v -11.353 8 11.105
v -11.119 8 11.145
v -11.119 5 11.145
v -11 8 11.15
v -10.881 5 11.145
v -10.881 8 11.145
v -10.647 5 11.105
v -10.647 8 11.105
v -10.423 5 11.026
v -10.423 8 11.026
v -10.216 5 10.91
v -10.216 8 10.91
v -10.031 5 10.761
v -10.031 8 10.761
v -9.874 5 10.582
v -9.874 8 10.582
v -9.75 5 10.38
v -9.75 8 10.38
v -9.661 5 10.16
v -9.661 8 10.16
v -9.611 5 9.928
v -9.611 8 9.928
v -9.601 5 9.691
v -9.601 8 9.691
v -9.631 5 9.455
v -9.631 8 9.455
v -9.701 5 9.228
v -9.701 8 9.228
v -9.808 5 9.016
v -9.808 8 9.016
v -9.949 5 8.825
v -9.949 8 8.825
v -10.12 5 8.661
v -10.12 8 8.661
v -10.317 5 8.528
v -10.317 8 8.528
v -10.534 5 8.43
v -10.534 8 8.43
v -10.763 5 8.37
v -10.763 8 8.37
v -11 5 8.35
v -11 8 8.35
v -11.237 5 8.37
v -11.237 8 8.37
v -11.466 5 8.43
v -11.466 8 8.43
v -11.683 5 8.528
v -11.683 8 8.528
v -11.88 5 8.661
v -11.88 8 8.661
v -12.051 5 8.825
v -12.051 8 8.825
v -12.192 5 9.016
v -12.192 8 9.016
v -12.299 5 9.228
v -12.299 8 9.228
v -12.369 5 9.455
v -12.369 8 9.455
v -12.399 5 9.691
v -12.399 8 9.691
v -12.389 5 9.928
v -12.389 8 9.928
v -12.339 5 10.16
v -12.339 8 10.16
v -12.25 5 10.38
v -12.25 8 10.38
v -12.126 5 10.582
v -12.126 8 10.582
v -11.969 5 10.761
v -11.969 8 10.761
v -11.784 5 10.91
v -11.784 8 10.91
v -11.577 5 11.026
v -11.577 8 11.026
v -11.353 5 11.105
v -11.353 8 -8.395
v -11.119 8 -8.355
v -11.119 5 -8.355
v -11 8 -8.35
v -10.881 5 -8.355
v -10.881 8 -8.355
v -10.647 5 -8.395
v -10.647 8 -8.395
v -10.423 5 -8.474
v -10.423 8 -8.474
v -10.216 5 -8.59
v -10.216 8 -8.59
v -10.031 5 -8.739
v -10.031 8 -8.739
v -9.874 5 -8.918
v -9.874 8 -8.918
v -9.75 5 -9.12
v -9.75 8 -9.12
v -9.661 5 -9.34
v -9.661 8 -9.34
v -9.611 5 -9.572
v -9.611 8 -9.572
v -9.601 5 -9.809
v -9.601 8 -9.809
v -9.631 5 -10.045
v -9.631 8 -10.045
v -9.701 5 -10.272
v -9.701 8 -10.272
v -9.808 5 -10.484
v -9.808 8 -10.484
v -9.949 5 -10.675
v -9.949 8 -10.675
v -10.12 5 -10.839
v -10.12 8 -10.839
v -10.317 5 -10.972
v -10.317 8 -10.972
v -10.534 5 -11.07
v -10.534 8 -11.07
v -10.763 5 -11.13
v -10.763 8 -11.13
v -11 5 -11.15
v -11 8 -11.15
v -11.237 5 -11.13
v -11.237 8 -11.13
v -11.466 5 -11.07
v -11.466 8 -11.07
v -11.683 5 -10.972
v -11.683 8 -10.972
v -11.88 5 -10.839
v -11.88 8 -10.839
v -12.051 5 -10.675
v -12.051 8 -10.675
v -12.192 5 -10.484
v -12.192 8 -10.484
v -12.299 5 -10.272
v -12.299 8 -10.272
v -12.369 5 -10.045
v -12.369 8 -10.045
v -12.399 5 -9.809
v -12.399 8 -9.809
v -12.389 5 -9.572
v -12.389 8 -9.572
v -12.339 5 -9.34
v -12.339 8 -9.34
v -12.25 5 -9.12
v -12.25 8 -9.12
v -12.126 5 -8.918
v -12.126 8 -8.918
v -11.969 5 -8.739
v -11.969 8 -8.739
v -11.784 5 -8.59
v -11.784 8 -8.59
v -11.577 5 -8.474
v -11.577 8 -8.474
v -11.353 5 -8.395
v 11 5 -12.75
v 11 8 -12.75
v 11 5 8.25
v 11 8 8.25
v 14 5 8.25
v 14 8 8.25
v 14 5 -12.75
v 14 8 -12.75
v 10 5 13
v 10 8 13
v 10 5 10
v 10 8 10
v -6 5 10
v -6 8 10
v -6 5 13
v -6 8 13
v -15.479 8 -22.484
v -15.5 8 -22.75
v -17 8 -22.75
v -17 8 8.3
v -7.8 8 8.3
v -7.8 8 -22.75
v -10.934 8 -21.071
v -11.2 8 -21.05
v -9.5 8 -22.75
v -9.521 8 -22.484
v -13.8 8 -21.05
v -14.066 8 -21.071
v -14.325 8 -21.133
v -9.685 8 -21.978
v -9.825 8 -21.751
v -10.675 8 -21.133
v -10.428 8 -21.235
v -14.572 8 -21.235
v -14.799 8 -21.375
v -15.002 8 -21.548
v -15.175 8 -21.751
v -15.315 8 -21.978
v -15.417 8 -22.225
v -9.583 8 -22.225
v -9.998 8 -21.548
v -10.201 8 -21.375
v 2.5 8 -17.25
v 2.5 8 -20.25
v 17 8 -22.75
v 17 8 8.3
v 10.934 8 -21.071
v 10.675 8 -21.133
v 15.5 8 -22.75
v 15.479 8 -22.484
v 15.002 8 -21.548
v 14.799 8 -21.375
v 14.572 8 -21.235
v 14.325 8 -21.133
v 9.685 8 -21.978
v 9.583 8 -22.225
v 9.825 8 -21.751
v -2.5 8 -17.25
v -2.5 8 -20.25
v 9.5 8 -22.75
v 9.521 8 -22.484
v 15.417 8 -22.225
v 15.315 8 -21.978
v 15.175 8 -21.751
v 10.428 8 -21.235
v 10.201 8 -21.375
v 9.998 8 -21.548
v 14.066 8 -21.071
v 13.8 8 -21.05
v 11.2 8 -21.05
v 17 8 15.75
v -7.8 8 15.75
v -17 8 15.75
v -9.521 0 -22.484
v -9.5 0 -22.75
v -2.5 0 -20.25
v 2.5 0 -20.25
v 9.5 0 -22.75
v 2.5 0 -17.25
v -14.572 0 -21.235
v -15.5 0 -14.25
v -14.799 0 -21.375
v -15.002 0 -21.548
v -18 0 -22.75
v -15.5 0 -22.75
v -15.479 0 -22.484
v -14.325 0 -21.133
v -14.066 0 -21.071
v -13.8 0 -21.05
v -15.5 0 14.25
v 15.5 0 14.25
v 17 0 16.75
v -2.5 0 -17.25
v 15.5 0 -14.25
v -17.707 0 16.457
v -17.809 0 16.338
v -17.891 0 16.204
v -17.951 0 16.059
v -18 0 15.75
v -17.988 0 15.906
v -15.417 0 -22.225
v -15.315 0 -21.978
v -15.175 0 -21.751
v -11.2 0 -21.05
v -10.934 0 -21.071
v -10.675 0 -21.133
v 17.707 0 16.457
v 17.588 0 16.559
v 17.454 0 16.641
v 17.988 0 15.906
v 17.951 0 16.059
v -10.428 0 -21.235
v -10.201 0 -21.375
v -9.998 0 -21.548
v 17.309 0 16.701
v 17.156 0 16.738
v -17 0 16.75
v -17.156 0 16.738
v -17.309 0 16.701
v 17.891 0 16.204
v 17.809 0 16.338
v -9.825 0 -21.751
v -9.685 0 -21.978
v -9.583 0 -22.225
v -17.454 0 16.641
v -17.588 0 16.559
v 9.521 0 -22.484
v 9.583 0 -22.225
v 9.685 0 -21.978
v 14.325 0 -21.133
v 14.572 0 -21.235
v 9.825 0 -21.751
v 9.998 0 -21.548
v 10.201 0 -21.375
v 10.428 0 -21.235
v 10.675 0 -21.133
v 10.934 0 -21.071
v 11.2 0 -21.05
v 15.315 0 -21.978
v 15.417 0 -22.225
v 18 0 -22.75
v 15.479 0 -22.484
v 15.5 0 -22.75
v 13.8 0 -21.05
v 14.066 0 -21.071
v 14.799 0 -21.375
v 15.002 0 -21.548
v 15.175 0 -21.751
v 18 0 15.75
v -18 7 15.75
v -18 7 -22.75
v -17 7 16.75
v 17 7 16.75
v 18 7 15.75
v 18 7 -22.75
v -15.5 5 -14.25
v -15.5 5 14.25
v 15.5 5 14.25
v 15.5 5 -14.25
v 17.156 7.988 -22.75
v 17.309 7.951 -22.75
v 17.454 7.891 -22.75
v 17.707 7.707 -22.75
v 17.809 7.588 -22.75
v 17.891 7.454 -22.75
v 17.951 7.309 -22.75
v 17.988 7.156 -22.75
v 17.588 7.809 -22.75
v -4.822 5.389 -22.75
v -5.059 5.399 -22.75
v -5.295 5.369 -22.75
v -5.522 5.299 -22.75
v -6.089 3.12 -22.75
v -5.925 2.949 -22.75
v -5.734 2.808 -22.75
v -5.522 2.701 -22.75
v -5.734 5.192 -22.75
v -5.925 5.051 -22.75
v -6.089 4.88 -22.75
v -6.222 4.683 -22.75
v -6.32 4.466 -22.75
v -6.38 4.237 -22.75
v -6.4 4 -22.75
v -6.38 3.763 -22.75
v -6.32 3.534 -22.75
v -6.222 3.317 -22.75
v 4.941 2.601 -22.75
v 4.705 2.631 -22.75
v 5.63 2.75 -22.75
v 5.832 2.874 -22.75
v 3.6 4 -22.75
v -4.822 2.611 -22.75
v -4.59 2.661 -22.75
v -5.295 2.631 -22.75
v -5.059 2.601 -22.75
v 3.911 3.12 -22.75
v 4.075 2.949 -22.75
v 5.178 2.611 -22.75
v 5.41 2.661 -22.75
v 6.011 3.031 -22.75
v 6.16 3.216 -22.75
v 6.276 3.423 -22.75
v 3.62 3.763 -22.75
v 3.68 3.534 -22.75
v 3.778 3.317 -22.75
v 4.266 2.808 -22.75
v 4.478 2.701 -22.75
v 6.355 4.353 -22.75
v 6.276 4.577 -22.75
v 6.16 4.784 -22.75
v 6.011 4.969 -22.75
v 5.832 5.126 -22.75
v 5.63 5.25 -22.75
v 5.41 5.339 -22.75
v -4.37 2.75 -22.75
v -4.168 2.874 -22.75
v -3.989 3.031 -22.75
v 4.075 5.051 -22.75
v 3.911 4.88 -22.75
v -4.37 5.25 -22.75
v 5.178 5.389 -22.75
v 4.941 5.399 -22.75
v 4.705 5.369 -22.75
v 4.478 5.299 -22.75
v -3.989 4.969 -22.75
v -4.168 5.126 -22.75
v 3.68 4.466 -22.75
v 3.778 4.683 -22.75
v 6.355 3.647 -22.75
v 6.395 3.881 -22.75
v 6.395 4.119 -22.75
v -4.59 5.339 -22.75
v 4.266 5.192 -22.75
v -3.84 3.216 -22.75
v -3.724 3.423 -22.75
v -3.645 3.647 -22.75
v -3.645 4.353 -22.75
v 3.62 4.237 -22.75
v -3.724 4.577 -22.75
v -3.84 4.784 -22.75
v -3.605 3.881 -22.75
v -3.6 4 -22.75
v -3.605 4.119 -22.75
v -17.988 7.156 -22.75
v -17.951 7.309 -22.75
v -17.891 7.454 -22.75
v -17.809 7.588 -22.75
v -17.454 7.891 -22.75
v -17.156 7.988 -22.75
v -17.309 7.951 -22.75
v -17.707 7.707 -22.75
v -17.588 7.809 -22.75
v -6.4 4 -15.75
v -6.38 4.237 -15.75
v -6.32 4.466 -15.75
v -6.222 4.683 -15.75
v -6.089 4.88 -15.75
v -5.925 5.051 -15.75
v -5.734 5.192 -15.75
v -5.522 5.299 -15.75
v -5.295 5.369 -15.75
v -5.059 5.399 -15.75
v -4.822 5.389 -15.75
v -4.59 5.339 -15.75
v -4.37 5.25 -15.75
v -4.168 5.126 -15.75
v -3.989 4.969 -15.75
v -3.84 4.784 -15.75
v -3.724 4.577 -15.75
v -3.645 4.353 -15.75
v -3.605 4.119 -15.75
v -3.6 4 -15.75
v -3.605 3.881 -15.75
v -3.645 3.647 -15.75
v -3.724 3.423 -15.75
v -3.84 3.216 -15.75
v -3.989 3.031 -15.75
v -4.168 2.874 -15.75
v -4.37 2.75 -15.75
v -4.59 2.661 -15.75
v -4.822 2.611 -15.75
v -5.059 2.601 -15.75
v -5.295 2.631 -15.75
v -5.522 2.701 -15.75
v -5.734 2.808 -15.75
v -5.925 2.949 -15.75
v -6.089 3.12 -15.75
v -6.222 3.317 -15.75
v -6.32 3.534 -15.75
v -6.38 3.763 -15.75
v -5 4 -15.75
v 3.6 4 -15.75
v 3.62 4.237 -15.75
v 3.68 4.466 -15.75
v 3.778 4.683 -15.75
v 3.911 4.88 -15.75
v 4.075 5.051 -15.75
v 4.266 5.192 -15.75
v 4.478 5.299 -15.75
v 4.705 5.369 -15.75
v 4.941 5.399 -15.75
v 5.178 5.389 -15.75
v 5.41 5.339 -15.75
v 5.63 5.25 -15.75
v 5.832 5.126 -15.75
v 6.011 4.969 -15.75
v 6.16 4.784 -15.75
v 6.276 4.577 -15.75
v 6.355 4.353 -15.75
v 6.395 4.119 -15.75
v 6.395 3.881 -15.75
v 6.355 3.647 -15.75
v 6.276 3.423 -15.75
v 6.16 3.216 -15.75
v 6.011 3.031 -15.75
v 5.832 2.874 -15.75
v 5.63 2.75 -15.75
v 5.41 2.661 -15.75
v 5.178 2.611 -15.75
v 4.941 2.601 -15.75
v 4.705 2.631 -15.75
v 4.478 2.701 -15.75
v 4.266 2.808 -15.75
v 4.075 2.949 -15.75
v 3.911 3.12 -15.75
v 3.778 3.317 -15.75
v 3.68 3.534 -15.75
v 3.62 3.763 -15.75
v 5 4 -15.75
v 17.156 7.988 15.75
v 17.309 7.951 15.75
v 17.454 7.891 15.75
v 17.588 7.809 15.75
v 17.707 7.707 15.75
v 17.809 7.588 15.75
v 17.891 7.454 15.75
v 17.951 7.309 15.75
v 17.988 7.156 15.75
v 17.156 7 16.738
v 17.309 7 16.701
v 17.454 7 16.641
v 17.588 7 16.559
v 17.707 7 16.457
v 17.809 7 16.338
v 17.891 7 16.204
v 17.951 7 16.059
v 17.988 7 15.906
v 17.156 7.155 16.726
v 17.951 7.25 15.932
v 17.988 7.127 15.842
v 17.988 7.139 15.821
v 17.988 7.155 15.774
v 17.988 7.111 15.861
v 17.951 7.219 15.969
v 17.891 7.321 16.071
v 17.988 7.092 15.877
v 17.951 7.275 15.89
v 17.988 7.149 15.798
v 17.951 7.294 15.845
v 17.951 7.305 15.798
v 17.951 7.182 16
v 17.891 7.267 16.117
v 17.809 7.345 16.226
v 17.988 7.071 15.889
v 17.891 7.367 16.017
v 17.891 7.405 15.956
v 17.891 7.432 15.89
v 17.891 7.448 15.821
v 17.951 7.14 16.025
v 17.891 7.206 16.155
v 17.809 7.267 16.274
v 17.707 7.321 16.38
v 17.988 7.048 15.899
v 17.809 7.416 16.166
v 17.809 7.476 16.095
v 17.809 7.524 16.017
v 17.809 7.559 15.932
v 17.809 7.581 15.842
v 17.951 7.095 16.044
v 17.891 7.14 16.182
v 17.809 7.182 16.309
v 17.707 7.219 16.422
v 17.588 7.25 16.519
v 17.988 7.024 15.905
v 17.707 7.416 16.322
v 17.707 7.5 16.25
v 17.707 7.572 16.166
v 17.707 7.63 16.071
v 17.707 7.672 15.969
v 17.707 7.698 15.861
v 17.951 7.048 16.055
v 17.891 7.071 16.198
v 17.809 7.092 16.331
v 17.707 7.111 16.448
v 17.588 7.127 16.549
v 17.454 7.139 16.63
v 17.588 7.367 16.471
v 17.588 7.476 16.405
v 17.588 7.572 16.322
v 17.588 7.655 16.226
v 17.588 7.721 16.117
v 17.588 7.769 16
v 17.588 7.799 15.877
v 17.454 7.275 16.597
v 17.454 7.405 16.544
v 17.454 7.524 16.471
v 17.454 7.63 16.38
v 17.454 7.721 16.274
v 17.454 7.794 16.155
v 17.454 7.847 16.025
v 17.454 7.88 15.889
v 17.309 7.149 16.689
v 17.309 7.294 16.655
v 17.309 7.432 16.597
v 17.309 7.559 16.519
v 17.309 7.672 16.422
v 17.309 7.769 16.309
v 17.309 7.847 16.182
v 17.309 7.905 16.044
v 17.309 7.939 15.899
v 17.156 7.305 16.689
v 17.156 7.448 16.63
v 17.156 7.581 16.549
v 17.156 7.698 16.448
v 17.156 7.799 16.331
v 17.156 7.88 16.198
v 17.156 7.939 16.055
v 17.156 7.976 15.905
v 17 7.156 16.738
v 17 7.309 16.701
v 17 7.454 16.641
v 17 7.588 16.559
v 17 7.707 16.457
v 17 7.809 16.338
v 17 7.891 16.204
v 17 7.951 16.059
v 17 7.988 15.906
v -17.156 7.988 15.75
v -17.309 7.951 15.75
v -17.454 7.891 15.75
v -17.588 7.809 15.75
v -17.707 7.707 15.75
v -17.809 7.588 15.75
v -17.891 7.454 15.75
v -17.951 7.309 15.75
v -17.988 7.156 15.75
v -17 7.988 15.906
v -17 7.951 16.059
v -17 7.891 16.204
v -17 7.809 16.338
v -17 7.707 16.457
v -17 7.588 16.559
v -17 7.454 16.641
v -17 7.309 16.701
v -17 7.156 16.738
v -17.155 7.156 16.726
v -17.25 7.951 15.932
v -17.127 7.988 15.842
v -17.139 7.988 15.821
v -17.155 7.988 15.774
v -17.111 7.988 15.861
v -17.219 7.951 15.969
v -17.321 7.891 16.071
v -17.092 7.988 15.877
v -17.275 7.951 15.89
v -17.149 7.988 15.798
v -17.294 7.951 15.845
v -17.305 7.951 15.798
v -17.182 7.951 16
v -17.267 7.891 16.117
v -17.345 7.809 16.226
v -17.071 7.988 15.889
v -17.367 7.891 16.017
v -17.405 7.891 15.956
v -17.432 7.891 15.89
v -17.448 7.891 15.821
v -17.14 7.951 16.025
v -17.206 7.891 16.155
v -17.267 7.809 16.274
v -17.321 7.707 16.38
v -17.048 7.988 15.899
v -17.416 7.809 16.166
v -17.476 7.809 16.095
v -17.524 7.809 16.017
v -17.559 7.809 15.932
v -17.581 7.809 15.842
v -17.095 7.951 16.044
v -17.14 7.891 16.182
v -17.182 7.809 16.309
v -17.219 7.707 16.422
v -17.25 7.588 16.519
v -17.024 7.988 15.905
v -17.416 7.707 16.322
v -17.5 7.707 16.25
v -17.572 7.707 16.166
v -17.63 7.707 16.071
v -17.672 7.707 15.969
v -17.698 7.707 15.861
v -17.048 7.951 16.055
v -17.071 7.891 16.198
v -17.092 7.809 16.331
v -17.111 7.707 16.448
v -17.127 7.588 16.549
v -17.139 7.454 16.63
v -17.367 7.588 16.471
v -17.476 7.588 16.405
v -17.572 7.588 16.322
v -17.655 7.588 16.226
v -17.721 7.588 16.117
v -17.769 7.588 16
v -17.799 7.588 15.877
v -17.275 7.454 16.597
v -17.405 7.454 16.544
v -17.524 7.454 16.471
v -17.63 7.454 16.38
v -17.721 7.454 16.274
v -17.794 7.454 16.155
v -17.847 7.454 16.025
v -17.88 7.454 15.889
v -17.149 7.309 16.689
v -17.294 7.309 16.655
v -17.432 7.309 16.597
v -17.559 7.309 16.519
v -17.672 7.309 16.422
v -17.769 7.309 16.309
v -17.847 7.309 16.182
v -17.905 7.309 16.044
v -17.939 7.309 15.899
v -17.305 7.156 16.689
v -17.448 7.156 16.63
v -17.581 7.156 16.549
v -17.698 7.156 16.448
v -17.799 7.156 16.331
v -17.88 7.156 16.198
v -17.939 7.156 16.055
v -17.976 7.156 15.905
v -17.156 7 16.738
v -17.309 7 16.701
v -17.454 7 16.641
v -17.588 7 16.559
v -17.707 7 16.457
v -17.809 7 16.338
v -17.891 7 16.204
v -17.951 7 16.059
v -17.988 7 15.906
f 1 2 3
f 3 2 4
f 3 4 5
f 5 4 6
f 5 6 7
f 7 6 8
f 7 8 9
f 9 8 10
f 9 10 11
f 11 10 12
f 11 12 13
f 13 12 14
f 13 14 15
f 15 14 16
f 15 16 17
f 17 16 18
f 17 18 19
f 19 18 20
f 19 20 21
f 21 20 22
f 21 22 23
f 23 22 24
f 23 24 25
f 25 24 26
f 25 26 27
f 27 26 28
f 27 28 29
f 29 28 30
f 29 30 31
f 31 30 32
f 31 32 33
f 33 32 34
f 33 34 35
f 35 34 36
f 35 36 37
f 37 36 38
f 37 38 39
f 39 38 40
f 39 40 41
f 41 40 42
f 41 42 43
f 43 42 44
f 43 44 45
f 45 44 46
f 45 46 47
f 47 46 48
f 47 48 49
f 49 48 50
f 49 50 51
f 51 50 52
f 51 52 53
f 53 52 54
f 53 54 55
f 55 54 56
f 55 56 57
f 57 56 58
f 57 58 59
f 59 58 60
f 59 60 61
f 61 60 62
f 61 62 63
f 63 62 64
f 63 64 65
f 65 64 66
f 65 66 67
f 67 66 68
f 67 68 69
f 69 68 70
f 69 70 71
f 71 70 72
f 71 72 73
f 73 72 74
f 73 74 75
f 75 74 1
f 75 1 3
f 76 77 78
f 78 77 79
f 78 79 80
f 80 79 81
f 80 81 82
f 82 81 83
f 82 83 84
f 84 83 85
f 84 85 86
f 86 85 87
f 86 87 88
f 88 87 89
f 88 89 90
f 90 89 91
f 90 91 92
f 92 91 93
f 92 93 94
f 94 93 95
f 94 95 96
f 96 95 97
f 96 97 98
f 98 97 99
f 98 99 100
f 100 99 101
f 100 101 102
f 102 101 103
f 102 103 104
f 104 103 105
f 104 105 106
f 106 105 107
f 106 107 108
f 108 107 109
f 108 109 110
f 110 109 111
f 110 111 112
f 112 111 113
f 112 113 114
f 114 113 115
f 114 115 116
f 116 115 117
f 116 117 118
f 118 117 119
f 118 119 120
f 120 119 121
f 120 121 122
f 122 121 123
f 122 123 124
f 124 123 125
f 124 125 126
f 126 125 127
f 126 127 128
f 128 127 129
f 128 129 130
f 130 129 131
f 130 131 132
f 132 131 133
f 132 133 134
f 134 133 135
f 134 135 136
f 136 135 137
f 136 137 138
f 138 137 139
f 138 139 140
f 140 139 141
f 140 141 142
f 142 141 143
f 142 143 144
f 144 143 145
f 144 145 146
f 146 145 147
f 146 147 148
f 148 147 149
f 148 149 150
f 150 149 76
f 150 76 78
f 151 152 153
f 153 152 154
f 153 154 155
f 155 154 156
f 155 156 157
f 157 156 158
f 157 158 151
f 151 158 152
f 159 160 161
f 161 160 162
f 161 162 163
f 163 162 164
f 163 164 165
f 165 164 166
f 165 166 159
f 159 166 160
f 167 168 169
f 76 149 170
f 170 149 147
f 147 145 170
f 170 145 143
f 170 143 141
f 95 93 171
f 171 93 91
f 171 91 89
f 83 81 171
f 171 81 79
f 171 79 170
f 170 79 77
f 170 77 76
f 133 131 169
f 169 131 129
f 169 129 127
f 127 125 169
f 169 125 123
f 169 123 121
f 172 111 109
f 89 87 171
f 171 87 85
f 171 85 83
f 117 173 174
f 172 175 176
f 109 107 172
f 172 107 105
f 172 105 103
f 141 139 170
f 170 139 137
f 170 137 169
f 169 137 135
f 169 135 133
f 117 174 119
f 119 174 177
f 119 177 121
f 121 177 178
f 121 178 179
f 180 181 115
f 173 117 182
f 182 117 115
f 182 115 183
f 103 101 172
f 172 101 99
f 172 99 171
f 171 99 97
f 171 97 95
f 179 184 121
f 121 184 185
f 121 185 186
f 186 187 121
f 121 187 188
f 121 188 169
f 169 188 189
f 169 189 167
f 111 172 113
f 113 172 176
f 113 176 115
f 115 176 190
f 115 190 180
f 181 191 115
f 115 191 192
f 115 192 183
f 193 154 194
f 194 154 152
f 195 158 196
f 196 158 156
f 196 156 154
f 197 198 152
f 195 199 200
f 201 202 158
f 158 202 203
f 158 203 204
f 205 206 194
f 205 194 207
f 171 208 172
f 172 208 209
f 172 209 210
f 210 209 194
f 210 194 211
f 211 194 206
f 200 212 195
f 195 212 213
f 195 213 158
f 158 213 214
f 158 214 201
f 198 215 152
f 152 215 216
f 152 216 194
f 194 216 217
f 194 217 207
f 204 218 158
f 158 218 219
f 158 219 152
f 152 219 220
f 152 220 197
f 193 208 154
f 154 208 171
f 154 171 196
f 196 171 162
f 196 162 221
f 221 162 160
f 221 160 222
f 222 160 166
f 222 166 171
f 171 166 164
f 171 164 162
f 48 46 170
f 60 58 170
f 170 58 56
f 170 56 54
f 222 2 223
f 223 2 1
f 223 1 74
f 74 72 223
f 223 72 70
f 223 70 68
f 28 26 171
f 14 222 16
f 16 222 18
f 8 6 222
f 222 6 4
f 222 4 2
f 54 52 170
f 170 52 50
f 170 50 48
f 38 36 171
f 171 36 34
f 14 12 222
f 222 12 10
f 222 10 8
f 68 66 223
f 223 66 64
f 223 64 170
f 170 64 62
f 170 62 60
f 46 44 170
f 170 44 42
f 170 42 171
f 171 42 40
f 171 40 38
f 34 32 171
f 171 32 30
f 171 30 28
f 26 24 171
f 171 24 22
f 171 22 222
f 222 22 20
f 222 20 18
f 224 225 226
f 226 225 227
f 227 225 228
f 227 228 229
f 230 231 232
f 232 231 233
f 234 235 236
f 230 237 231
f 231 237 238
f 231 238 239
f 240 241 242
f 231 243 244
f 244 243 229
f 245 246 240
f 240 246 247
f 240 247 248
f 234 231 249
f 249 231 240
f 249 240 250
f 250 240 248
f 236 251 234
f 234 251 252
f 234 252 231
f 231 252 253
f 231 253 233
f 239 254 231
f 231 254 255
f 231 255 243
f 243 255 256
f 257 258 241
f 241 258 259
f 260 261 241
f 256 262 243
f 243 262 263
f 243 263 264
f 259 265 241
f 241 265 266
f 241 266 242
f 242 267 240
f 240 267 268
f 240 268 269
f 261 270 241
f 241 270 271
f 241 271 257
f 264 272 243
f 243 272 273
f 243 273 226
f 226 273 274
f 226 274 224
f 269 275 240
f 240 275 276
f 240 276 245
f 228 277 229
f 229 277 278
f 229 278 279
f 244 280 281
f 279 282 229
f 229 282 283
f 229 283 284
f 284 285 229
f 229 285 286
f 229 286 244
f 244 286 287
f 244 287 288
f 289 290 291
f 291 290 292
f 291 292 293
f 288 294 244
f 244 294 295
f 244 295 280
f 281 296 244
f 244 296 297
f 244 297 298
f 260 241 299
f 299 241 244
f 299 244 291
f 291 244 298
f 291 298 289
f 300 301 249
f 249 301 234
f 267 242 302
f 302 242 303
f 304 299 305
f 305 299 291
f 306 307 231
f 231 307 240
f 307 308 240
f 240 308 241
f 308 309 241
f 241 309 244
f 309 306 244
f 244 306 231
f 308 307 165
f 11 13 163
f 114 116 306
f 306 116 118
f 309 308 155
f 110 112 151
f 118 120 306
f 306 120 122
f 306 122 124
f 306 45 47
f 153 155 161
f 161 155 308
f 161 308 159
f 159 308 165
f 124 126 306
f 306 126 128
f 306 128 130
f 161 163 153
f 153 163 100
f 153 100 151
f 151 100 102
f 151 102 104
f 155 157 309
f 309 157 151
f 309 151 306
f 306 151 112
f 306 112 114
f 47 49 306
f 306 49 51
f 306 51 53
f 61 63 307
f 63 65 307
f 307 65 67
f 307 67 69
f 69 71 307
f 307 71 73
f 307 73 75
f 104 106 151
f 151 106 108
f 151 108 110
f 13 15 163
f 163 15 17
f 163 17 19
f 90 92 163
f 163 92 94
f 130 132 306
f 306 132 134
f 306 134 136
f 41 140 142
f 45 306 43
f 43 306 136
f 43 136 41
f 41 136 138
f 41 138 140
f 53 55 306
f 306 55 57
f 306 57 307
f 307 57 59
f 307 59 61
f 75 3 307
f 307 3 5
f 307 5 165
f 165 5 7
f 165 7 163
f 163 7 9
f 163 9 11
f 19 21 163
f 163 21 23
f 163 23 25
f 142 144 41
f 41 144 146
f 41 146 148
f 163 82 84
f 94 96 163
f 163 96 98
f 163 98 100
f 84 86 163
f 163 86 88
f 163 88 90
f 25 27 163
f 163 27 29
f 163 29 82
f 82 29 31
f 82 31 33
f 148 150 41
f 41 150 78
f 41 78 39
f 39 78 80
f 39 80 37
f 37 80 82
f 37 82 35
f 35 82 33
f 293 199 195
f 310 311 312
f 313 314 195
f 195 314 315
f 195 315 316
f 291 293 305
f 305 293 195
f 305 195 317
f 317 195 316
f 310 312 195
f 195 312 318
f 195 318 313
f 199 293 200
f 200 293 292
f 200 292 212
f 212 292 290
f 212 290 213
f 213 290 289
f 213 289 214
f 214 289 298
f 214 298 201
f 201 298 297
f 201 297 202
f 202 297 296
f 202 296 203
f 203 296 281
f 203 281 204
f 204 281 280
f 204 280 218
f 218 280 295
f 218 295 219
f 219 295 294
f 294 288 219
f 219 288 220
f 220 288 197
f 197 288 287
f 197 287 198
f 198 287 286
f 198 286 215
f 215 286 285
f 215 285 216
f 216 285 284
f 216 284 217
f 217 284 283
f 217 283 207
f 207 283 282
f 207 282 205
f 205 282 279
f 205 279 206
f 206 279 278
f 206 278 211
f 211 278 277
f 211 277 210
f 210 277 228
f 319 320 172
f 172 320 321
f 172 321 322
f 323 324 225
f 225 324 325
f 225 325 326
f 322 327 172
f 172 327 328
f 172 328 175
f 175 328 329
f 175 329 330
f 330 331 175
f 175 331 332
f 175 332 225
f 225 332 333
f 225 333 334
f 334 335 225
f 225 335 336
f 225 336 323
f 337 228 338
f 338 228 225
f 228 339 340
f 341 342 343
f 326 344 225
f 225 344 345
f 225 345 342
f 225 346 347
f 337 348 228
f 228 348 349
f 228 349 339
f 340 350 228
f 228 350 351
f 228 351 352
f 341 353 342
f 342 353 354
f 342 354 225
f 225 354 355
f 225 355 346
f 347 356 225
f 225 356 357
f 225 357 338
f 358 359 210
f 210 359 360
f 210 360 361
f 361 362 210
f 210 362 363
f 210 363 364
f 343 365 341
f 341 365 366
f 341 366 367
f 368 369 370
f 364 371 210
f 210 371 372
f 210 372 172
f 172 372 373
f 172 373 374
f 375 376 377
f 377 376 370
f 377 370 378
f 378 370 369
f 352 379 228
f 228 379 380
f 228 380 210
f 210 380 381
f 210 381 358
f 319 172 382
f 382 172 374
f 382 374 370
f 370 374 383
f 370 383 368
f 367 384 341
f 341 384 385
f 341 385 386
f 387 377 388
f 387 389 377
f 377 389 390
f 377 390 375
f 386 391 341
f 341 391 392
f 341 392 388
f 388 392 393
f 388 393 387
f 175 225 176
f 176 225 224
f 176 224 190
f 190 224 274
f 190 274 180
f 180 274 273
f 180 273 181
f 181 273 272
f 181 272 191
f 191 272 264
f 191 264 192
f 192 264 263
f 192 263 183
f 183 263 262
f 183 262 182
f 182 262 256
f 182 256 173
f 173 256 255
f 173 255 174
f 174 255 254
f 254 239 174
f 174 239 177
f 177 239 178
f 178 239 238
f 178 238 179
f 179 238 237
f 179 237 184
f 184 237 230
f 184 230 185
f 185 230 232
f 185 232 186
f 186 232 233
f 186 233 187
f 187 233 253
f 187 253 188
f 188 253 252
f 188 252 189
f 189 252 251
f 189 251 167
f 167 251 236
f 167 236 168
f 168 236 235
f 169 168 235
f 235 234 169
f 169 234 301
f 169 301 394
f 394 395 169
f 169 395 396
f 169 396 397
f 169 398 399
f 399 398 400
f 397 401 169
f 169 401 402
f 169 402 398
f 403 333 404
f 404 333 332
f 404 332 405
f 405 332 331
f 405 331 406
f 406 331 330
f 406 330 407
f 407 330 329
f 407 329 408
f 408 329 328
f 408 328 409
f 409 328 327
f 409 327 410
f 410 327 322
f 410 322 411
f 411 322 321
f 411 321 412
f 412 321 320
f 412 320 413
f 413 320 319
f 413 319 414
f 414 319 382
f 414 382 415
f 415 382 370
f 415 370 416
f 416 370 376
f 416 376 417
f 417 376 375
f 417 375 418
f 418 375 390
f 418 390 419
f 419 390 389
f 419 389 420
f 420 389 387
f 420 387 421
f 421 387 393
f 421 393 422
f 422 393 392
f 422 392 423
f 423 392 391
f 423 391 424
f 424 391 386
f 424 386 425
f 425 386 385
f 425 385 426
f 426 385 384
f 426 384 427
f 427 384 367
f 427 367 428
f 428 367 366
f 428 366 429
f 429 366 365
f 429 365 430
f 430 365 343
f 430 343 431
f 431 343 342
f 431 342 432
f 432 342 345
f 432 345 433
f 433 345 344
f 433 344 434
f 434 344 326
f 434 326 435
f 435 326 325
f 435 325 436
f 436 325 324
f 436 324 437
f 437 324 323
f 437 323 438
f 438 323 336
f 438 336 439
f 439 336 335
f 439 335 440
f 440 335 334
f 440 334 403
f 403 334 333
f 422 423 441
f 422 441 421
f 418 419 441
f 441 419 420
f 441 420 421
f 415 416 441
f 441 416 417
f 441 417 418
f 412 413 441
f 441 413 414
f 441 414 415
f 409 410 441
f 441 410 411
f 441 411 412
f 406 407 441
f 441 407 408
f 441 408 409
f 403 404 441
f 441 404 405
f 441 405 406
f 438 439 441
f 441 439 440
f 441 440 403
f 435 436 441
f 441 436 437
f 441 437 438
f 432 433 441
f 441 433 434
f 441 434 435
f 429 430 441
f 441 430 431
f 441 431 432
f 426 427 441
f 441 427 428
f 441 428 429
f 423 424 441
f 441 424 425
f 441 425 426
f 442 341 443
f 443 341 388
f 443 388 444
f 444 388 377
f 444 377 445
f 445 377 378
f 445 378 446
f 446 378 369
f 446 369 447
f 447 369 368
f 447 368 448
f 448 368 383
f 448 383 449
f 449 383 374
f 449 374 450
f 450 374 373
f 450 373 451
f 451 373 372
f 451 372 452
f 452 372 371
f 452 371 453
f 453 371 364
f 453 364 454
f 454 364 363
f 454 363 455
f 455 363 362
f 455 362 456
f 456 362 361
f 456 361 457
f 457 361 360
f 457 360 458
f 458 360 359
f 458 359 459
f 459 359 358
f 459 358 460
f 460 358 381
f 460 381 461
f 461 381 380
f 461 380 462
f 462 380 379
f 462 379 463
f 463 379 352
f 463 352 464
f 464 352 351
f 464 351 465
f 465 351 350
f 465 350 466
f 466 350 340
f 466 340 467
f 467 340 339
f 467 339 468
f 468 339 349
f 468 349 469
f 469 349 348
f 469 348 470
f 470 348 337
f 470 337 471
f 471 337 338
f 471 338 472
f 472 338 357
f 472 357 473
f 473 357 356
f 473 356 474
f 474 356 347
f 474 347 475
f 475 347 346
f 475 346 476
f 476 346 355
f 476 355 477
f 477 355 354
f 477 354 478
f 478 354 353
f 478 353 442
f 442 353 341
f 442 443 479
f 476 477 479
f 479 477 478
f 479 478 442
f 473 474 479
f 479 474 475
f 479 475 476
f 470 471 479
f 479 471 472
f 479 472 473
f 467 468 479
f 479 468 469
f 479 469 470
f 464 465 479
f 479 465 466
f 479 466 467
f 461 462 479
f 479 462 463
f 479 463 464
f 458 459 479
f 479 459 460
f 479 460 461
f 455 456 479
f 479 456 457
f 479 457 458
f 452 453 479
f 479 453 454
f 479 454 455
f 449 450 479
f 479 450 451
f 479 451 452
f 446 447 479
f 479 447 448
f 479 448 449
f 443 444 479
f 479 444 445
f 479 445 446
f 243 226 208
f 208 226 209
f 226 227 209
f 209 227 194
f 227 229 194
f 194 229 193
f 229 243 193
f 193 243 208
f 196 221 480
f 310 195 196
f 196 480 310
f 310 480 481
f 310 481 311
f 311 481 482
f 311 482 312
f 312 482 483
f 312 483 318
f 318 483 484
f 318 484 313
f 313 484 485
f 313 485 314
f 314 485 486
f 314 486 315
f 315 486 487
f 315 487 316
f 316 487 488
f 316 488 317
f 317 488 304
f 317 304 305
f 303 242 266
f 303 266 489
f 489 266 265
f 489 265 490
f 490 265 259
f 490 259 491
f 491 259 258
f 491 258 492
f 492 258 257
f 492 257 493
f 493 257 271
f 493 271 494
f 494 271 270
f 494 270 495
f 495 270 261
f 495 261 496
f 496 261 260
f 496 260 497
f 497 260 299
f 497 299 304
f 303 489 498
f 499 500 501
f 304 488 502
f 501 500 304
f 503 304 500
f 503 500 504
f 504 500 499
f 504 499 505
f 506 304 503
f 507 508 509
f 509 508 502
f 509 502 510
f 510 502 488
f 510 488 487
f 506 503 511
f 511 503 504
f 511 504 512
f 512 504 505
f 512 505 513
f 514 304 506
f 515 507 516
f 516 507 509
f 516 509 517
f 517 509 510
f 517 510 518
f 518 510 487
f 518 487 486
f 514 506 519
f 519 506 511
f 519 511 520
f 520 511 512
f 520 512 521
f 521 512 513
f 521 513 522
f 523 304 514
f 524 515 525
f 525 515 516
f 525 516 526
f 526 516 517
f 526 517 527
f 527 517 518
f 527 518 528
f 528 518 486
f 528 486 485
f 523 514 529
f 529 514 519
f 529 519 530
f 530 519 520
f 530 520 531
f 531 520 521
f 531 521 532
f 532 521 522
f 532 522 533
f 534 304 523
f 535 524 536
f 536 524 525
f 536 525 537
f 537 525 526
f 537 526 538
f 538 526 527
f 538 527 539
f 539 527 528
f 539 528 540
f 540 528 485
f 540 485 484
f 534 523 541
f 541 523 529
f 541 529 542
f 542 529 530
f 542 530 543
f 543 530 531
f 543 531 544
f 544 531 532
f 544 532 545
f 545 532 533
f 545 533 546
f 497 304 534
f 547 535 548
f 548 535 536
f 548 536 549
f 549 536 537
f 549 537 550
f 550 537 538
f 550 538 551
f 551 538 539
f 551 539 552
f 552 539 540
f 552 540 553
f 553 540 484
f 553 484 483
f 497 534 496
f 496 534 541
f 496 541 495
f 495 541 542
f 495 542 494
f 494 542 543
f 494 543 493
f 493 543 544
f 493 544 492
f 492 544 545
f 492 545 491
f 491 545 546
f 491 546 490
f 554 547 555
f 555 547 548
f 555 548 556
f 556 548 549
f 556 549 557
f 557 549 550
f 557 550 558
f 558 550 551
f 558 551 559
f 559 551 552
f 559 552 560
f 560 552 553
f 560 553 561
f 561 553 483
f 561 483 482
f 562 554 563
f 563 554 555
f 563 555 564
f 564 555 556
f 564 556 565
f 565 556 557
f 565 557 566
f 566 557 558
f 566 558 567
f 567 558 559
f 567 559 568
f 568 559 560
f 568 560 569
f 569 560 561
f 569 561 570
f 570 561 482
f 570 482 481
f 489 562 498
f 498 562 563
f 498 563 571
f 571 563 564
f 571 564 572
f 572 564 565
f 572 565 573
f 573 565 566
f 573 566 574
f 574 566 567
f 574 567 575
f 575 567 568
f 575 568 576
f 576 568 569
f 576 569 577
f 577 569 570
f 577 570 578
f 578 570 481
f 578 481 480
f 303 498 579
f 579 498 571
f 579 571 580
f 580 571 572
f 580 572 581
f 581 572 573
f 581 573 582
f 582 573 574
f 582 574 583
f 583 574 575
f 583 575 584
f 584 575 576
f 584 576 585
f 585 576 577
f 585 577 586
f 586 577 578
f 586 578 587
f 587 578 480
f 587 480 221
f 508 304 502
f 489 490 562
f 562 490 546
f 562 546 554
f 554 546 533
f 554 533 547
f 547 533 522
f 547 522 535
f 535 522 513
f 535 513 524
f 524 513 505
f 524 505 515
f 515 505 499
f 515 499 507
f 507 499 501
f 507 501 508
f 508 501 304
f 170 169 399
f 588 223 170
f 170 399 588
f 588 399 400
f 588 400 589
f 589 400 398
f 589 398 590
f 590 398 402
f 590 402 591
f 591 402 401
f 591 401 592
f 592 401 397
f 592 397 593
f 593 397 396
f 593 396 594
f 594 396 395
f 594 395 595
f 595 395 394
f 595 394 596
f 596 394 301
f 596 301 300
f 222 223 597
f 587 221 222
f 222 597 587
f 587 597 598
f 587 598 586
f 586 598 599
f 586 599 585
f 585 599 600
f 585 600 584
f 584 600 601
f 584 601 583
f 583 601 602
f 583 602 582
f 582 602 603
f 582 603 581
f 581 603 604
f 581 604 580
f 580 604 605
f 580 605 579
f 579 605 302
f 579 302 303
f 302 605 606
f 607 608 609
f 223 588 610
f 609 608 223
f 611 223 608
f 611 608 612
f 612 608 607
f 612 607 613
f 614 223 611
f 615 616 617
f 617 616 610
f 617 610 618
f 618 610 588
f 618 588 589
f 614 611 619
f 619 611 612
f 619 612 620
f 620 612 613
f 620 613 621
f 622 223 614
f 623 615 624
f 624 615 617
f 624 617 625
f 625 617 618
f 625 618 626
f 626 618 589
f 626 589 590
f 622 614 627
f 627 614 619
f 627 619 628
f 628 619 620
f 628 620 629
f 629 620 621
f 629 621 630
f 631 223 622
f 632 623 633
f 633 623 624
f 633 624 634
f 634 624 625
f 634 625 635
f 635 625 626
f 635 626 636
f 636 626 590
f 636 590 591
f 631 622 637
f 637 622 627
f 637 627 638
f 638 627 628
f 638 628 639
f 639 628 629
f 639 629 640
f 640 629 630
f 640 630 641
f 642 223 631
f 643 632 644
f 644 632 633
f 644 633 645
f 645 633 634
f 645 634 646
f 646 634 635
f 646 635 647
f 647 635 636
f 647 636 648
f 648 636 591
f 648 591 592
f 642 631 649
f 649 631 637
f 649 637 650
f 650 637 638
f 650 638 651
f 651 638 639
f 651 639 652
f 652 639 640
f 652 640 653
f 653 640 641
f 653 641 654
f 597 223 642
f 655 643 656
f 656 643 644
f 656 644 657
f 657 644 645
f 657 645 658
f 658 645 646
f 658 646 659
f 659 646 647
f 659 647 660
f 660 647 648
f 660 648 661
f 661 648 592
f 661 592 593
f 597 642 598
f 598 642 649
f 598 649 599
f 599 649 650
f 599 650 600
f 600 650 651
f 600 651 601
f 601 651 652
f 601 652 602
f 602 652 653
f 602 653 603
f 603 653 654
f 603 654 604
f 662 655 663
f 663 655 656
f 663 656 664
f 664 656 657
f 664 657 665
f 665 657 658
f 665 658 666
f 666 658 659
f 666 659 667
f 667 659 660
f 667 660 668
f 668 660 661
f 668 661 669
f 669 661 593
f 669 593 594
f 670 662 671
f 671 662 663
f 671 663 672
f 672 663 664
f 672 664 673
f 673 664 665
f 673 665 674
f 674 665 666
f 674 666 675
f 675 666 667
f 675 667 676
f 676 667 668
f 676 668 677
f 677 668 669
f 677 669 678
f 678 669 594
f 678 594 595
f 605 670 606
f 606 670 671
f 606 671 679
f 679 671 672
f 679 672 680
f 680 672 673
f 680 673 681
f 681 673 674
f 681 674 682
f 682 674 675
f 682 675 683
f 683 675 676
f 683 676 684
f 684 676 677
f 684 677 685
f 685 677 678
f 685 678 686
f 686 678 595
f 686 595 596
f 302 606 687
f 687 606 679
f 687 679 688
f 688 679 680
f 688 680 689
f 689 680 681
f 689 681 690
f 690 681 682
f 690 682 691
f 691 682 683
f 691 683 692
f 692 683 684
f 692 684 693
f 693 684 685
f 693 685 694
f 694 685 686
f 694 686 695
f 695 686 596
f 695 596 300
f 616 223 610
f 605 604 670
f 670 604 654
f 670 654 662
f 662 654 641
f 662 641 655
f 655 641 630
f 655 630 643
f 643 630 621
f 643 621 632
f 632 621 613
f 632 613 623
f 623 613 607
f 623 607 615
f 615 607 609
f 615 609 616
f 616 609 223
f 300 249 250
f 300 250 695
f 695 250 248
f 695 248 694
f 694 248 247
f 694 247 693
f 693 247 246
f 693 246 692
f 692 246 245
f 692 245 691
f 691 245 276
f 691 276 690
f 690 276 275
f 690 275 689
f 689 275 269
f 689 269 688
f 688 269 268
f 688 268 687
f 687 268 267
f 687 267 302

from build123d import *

# Parameters (mm, degrees)
SKETCH1_W                         = 36
SKETCH1_H                         = 33.5
SKETCH1_R                         = 1.4
SKETCH1_W_2                       = 3
SKETCH1_H_2                       = 21
SKETCH1_W_3                       = 16
SKETCH1_H_3                       = 3
BASE_DEPTH                        = 8
SKETCH3_W                         = 31
SKETCH3_H                         = 28.5
INTERIOR_CUTOUT_DEPTH             = 5
BASKET_MOUNTING_EDGE_DEPTH        = 8
SKETCH6_R                         = 1.4
BASKET_MOUNTING_SCREW_HOLES_DEPTH = 7
SKETCH7_W                         = 5
SKETCH7_H                         = 3
ZIP_TIE_HOLE_DEPTH                = 31.092565527
F_1MM_EDGE_FILLETS_R              = 1


with BuildPart() as part:
    # Sketch1 → Base (new body)
    with BuildSketch(Plane(origin=(0, 0, 0), x_dir=(1, 0, 0), z_dir=(0, 1, 0))):
        Rectangle(SKETCH1_W, SKETCH1_H)
        with Locations(Location((-11, -9.75, 0), (0, 0, 270))):
            Circle(SKETCH1_R, mode=Mode.SUBTRACT)
        with Locations(Location((-11, 9.75, 0), (0, 0, 270))):
            Circle(SKETCH1_R, mode=Mode.SUBTRACT)
        with Locations((12.5, 2.25)):
            Rectangle(SKETCH1_W_2, SKETCH1_H_2, mode=Mode.SUBTRACT)
        with Locations((2, -11.5)):
            Rectangle(SKETCH1_W_3, SKETCH1_H_3, mode=Mode.SUBTRACT)
    extrude(amount=BASE_DEPTH)

    # Sketch3 → Interior Cutout (cut)
    with BuildSketch(Plane.XZ):
        Rectangle(SKETCH3_W, SKETCH3_H)
    extrude(amount=-INTERIOR_CUTOUT_DEPTH, mode=Mode.SUBTRACT)

    # Sketch5 → Basket Mounting Edge (add)
    with BuildSketch(Plane(origin=(0, 0, 0), x_dir=(1, 0, 0), z_dir=(0, 1, 0))):
        with BuildLine():
            Line((-18, 16.75), (18, 16.75))
            Line((18, 16.75), (18, 22.75))
            Line((18, 22.75), (15.5, 22.75))
            ThreePointArc((15.5, 22.75), (15.002081528, 21.547918472), (13.8, 21.05))
            Line((13.8, 21.05), (11.2, 21.05))
            ThreePointArc((11.2, 21.05), (9.997918472, 21.547918472), (9.5, 22.75))
            Line((9.5, 22.75), (-9.5, 22.75))
            ThreePointArc((-9.5, 22.75), (-9.997918472, 21.547918472), (-11.2, 21.05))
            Line((-11.2, 21.05), (-13.8, 21.05))
            ThreePointArc((-13.8, 21.05), (-15.002081528, 21.547918472), (-15.5, 22.75))
            Line((-15.5, 22.75), (-18, 22.75))
            Line((-18, 22.75), (-18, 16.75))
        make_face()
    extrude(amount=BASKET_MOUNTING_EDGE_DEPTH)

    # Sketch6 → Basket Mounting Screw Holes (cut)
    with BuildSketch(Plane(origin=(0, 0, -22.75), x_dir=(-1, 0, 0), z_dir=(0, 0, -1))):
        with Locations((-5, 4)):
            Circle(SKETCH6_R)
        with Locations(Location((5, 4, 0), (0, 0, 180))):
            Circle(SKETCH6_R)
    extrude(amount=-BASKET_MOUNTING_SCREW_HOLES_DEPTH, mode=Mode.SUBTRACT)

    # Sketch7 → Zip Tie Hole (cut, through all)
    with BuildSketch(Plane(origin=(0, 8, 0), x_dir=(1, 0, 0), z_dir=(0, 1, 0))):
        with Locations((0, 18.75)):
            Rectangle(SKETCH7_W, SKETCH7_H)
    extrude(amount=-ZIP_TIE_HOLE_DEPTH, mode=Mode.SUBTRACT)

    # 1mm Edge Fillets
    f_1mm_edge_fillets_edges = [part.edges().sort_by_distance(p)[0] for p in [
        (18, 8, -3),
        (-18, 8, -3),
        (18, 4, 16.75),
        (-18, 4, 16.75),
        (0, 8, 16.75),
    ]]
    fillet(f_1mm_edge_fillets_edges, radius=F_1MM_EDGE_FILLETS_R)


solid = part.part
